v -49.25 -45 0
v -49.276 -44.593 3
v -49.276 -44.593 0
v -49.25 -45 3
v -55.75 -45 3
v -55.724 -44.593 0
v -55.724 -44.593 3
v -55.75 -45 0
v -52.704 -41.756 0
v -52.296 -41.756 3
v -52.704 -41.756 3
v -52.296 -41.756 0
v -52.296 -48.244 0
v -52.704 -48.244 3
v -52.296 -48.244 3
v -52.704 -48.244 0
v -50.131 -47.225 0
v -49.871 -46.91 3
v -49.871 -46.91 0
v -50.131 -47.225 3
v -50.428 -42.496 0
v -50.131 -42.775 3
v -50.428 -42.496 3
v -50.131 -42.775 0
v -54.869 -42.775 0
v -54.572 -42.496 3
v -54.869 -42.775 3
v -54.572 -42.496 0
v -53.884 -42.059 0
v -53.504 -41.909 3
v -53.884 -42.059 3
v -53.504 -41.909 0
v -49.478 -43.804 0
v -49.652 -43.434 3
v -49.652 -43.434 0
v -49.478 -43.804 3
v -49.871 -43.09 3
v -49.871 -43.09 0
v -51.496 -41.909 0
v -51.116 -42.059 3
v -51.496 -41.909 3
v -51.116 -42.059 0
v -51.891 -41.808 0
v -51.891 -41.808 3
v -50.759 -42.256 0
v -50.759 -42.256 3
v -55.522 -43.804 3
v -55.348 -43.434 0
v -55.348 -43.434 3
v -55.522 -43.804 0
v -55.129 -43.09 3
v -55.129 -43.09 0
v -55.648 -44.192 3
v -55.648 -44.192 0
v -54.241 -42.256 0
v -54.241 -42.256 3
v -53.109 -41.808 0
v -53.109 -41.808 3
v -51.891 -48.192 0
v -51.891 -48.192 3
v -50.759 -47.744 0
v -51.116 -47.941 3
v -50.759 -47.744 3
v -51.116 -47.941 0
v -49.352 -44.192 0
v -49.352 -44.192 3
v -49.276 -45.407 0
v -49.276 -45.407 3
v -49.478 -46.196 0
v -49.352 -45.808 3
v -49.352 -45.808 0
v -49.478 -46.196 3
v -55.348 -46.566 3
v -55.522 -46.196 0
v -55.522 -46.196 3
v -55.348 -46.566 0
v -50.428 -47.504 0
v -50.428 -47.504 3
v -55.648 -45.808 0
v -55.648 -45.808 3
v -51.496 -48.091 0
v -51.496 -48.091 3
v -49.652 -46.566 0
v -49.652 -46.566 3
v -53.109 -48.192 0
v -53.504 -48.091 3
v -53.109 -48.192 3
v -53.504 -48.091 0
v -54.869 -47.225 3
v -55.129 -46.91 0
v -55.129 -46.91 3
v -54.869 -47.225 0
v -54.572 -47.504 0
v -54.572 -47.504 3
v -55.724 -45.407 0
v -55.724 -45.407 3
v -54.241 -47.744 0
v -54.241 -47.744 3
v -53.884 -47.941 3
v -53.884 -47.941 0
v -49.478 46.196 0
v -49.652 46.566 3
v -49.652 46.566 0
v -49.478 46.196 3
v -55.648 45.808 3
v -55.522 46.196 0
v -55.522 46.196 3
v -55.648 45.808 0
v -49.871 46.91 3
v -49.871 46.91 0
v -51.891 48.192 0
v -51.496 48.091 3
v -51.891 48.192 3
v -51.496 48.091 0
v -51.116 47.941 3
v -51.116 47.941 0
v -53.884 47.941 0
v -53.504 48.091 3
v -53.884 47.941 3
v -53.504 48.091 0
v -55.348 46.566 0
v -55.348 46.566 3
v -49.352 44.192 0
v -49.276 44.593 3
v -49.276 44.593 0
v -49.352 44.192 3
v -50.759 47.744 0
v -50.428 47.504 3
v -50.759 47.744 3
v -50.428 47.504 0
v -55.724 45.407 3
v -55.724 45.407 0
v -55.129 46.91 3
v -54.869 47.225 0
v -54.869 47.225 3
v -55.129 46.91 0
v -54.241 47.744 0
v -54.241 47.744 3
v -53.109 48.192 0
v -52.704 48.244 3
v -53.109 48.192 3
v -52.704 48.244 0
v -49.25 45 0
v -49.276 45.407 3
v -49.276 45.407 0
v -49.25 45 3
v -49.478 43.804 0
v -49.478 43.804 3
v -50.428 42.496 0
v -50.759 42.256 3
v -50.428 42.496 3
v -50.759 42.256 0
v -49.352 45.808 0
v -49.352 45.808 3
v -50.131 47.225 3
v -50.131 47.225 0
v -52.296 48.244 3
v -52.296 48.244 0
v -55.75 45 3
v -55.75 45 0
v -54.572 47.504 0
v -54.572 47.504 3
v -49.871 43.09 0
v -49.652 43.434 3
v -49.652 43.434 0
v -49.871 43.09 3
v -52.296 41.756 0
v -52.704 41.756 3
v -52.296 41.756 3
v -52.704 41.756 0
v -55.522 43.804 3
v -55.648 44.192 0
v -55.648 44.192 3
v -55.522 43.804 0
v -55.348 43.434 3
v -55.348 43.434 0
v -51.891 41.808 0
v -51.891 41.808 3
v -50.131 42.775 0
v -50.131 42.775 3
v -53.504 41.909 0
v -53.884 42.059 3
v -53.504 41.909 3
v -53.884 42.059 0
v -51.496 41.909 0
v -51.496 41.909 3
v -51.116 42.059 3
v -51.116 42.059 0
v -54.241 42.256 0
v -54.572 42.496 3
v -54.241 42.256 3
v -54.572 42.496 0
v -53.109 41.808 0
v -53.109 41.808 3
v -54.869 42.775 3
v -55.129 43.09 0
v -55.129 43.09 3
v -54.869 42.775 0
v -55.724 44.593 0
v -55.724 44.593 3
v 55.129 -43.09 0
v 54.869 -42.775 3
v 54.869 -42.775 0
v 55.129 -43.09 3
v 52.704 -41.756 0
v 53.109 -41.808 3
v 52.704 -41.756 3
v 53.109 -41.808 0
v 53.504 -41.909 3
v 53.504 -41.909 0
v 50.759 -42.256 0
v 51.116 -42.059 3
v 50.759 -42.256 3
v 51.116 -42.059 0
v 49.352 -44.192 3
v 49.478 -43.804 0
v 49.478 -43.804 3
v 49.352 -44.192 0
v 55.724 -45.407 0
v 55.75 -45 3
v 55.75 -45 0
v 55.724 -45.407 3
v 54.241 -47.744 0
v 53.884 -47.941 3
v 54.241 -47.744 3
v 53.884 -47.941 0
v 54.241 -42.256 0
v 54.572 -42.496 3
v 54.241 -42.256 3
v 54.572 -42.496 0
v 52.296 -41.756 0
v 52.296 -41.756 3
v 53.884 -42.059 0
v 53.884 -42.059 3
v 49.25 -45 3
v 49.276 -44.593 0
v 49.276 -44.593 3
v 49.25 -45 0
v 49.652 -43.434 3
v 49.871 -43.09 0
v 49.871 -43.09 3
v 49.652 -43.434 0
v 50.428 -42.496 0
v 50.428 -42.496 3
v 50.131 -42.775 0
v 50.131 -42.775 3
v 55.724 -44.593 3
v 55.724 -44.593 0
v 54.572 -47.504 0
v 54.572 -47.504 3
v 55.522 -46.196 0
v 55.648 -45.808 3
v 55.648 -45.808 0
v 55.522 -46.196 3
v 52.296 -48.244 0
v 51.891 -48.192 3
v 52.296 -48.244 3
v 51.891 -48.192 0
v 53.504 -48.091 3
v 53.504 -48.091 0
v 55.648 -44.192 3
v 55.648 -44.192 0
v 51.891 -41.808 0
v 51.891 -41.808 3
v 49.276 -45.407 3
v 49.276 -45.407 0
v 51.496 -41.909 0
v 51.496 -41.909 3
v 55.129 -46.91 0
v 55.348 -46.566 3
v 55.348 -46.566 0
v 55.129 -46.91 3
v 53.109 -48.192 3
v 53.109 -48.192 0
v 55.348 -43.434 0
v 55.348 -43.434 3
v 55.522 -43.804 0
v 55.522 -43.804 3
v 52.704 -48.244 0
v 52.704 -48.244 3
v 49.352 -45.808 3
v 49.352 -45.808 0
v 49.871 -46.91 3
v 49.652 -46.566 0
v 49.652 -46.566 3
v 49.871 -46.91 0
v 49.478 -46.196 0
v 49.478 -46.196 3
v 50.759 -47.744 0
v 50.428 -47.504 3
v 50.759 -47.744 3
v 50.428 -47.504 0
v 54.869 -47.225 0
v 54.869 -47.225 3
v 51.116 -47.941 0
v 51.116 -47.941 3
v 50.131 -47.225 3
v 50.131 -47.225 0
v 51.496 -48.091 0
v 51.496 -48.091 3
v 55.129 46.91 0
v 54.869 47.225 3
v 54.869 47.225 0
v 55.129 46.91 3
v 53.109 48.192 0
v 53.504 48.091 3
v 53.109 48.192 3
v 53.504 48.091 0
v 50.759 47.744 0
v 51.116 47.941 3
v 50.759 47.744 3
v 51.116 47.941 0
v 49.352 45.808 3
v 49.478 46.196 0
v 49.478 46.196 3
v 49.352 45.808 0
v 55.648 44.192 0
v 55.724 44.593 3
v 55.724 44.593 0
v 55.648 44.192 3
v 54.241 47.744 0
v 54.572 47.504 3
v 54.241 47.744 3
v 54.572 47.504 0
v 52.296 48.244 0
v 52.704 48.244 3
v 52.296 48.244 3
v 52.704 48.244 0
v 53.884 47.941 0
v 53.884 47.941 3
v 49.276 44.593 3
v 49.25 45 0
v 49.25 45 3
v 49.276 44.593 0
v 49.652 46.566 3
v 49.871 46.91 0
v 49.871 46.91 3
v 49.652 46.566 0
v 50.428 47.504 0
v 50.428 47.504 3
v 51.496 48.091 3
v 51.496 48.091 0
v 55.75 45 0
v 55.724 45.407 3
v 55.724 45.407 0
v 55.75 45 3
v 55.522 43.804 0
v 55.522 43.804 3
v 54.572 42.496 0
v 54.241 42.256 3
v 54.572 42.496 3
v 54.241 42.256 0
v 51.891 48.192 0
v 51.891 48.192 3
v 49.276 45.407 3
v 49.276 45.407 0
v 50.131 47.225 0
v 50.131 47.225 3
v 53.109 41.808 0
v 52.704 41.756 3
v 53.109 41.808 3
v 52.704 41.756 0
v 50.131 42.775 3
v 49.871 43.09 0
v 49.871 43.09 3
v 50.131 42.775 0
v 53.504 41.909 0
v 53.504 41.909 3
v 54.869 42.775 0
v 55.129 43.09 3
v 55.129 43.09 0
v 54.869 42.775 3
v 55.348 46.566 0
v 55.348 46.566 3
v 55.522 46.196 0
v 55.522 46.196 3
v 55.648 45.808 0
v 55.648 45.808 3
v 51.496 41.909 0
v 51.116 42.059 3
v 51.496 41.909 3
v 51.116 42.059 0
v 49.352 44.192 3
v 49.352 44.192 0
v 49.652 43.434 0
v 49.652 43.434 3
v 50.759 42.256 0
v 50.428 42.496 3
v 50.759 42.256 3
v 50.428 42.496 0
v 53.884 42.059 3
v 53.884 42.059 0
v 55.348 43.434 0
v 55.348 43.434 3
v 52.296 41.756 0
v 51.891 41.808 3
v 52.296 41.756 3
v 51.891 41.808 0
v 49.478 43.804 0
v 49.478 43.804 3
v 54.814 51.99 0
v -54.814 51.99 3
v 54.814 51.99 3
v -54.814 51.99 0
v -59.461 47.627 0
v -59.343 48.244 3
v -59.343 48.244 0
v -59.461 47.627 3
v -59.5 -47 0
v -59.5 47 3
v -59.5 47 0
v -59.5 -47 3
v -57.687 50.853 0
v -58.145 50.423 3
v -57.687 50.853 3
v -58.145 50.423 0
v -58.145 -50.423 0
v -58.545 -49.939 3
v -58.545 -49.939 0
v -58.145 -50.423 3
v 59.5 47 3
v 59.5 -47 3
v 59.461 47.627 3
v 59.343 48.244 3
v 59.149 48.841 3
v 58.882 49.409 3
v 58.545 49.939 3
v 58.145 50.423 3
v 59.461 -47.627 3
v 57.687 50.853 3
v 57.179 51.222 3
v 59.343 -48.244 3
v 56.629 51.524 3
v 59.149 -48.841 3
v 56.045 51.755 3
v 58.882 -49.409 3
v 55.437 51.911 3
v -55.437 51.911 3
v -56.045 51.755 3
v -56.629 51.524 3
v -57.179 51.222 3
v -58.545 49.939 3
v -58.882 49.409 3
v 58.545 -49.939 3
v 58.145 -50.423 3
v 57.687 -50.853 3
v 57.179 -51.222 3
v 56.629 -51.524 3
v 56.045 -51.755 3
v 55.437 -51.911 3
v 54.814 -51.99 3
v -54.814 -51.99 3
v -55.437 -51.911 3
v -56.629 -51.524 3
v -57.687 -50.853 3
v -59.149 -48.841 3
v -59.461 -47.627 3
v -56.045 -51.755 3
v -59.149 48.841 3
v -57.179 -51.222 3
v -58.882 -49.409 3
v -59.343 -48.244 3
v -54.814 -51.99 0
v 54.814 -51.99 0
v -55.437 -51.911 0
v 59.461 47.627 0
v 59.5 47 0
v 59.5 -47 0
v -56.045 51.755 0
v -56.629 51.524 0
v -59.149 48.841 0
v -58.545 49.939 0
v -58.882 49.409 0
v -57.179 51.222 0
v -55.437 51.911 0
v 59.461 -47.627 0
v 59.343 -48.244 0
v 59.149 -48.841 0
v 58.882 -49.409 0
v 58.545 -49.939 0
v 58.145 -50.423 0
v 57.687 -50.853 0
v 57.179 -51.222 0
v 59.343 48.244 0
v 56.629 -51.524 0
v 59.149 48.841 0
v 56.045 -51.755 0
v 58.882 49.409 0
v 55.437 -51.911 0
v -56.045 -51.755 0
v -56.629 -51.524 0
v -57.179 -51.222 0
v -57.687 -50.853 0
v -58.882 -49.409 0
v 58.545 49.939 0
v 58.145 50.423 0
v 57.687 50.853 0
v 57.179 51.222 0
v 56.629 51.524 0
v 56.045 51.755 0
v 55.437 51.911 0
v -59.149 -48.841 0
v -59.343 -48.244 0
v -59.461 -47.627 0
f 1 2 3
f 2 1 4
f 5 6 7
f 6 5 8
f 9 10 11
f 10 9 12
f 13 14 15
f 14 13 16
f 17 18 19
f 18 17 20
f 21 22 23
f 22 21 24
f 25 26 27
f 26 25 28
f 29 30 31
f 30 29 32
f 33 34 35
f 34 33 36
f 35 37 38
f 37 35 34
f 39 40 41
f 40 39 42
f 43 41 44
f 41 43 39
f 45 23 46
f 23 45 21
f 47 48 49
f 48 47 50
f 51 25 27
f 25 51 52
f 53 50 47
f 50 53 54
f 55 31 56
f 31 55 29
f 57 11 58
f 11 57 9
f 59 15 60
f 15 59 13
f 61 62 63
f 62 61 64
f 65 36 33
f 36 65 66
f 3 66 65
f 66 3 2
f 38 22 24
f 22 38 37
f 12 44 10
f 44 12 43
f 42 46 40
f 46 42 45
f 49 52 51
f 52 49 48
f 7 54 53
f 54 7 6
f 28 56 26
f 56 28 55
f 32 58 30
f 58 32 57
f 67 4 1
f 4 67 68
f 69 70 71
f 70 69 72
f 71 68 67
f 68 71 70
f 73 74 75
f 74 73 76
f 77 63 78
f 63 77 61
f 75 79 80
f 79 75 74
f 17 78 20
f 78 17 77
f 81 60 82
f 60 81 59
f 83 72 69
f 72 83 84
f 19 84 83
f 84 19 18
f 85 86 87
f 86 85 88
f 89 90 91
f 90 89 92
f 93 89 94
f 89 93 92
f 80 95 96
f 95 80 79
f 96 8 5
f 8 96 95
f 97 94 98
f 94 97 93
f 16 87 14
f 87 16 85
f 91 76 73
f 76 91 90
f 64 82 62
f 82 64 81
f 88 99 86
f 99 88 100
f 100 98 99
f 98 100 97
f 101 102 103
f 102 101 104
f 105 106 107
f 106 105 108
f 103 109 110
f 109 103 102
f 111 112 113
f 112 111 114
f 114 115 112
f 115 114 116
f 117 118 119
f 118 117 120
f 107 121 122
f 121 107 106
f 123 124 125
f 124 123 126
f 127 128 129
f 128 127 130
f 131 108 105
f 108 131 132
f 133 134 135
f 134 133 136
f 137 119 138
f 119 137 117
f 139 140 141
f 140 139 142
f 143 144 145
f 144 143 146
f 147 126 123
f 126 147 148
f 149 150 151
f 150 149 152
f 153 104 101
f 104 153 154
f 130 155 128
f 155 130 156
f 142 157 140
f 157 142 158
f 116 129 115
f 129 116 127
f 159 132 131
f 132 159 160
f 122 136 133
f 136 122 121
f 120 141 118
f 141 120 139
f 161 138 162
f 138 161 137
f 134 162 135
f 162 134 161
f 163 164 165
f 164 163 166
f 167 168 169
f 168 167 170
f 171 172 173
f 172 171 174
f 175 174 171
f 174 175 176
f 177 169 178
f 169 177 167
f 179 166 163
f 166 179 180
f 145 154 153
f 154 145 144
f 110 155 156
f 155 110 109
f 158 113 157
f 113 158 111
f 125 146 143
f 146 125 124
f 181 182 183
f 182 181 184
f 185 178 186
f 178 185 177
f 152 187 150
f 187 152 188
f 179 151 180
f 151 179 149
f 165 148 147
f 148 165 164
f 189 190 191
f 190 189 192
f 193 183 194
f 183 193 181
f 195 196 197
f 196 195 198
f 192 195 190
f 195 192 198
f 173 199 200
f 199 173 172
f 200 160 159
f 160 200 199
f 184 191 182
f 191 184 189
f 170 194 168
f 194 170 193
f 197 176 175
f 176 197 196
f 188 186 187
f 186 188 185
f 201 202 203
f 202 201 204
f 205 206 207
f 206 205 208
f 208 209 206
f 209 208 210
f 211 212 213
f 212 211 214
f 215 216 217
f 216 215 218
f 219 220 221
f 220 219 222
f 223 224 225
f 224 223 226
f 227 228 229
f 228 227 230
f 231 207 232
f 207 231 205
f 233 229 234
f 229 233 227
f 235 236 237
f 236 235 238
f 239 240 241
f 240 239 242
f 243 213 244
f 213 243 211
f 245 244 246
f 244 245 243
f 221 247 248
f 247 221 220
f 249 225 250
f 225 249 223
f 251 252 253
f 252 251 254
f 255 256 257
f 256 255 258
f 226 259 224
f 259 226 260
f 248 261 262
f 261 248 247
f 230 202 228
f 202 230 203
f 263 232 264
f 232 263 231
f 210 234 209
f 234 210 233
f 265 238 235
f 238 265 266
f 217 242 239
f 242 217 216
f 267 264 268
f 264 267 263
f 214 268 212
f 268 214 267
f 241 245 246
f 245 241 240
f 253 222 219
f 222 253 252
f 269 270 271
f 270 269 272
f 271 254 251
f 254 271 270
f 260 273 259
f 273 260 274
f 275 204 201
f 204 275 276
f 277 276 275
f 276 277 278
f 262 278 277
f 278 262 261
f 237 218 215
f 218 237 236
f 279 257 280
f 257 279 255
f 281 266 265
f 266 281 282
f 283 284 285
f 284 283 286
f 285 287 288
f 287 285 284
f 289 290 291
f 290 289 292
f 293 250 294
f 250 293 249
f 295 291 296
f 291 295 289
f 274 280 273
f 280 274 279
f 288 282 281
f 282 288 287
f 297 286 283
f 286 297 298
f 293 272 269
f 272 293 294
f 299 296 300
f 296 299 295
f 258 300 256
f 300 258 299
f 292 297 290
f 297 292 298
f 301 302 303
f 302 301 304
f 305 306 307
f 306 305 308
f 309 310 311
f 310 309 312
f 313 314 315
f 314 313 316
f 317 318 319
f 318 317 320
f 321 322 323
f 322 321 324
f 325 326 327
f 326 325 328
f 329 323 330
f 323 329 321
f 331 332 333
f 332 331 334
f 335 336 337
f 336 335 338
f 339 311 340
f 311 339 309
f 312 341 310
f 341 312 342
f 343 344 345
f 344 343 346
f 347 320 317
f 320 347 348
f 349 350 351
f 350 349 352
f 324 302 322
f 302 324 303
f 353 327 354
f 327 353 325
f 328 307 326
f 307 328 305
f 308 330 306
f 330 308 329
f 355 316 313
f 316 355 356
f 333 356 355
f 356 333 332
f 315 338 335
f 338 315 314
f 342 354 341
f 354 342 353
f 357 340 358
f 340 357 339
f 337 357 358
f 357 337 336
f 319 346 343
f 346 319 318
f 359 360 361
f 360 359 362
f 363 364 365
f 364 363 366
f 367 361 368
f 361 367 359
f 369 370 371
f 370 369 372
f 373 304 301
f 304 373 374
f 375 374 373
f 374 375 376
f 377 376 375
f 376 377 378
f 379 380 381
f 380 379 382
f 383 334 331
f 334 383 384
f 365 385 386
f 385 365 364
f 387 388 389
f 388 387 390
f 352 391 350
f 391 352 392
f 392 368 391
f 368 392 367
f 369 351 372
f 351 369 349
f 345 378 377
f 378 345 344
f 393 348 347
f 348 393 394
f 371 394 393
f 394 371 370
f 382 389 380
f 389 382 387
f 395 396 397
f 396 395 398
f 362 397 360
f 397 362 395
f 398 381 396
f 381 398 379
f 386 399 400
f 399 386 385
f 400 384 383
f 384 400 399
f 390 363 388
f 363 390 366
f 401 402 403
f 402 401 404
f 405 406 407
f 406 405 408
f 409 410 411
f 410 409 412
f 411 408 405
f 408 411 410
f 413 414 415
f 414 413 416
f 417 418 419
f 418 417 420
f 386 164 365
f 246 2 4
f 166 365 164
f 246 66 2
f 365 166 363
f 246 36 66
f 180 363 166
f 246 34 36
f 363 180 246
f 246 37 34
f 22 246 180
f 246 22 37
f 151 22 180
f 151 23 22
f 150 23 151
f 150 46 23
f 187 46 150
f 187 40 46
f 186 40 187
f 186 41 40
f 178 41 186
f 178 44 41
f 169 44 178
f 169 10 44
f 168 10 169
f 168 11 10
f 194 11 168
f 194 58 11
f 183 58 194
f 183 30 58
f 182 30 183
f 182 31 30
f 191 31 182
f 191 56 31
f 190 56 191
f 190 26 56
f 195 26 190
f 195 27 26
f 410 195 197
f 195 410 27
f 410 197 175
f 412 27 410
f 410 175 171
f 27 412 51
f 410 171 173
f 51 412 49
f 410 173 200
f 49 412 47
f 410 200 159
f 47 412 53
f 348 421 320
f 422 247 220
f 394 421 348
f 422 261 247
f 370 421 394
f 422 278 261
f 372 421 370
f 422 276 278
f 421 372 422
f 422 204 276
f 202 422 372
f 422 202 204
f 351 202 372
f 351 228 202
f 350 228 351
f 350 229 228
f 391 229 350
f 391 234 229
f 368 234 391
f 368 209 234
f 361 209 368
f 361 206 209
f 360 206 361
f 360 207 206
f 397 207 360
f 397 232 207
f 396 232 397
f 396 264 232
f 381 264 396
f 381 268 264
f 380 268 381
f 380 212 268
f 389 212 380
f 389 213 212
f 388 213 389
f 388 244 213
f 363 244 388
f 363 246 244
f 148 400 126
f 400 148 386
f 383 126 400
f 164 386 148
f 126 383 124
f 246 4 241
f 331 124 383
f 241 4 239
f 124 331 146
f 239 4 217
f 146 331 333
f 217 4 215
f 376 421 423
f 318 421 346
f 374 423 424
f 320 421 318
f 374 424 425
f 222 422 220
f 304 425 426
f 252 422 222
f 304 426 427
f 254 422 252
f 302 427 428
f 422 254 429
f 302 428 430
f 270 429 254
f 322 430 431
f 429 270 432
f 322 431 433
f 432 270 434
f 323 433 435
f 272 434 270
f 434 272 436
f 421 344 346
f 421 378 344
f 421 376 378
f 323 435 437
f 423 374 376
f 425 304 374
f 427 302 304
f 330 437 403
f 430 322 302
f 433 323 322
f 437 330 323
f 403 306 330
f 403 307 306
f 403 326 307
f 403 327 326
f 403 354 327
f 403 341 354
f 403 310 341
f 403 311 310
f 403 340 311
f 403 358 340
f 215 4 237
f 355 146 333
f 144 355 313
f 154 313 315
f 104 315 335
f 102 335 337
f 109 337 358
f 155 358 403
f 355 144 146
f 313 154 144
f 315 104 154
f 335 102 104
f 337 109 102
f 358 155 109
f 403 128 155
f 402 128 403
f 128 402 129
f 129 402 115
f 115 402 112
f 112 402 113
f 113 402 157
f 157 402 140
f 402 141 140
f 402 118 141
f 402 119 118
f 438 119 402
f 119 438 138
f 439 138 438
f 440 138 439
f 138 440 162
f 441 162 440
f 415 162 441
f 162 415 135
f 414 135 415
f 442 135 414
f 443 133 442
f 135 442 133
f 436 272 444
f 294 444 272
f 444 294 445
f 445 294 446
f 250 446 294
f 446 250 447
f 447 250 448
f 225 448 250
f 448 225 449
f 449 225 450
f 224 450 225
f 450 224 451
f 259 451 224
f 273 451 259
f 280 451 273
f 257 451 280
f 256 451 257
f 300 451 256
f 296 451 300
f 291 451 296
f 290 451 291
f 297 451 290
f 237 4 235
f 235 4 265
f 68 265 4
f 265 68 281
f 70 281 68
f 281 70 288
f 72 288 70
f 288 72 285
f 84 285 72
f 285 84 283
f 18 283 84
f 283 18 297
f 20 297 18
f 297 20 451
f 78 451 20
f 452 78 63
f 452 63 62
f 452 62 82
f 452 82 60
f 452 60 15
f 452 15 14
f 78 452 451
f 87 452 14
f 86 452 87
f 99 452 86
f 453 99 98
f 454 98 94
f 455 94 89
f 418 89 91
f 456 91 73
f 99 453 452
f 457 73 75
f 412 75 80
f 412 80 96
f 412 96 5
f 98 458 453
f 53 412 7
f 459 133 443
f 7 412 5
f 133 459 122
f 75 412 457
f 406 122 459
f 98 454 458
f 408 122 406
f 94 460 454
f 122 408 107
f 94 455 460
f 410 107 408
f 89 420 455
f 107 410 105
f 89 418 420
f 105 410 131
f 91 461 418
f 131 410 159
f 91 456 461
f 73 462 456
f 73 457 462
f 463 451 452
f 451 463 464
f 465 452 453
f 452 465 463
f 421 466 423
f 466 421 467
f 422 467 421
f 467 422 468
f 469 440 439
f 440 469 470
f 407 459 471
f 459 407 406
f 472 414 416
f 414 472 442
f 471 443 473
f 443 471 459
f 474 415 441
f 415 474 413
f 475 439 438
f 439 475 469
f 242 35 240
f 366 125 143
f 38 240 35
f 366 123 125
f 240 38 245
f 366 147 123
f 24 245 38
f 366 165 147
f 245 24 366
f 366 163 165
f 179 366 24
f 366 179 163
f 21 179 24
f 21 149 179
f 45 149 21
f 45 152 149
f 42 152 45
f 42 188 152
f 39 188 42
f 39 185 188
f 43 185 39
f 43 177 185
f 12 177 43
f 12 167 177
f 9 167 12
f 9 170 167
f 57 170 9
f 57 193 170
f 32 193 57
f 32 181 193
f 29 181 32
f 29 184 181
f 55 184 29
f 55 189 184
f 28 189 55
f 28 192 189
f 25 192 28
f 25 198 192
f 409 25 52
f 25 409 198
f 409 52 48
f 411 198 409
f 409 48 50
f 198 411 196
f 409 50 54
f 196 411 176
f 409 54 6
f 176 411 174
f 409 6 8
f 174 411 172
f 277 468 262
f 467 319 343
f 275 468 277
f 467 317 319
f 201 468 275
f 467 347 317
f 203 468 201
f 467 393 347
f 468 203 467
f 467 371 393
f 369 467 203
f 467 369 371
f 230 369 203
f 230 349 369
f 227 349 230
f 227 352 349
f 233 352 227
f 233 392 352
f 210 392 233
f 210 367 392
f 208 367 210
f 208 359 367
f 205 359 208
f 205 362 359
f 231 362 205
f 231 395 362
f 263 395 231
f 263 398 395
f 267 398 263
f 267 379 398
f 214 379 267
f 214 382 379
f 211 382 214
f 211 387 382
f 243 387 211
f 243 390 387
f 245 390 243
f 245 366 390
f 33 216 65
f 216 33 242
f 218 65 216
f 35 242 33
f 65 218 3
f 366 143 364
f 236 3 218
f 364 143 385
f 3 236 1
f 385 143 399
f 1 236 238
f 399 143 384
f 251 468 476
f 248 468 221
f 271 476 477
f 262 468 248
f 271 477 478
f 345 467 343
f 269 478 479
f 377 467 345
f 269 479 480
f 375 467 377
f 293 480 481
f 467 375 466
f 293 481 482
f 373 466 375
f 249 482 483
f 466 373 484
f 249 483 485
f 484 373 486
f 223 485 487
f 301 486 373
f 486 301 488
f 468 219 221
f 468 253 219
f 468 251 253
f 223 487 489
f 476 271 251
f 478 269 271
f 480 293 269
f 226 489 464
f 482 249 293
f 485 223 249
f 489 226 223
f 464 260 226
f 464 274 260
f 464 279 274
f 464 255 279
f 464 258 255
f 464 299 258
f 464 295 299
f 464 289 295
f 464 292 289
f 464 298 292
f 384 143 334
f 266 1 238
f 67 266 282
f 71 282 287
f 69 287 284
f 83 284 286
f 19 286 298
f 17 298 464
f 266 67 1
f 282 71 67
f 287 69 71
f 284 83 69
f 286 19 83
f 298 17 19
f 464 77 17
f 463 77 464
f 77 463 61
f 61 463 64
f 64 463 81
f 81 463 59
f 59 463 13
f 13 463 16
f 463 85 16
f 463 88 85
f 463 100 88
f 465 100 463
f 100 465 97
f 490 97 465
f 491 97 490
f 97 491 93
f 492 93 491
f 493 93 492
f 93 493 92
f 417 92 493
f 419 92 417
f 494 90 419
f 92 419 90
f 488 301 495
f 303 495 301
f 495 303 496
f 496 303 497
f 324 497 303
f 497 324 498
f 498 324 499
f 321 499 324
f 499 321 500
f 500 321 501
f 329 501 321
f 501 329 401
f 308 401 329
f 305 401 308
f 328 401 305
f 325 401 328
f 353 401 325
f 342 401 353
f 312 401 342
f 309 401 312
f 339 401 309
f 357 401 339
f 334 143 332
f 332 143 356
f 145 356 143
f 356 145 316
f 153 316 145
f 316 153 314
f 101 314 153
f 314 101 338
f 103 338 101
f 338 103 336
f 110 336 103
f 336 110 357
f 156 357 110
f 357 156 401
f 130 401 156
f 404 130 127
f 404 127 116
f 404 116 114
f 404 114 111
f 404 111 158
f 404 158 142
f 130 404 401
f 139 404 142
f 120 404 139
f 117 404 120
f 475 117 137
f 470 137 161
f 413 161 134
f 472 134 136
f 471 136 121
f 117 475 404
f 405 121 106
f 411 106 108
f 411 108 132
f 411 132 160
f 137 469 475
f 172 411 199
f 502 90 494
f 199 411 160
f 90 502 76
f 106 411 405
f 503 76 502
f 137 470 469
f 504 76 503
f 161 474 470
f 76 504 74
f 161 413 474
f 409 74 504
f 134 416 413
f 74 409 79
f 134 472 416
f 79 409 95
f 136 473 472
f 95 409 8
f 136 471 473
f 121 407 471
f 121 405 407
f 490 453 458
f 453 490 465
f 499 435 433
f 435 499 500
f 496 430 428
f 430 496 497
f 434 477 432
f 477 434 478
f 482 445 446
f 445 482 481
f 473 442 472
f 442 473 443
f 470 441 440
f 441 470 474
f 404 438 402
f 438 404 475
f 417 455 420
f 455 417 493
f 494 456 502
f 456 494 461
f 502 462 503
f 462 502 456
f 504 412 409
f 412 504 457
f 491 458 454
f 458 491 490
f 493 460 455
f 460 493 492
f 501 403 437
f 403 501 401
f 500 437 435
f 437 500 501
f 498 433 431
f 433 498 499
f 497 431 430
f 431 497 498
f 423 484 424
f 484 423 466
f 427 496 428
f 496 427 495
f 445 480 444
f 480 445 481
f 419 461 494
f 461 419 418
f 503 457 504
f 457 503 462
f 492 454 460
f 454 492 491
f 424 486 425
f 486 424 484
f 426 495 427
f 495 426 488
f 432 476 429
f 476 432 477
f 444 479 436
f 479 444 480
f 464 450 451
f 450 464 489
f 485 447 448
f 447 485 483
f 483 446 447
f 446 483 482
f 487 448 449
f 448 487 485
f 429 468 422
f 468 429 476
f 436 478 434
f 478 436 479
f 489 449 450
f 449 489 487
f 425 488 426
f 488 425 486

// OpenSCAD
$fn = 50;


difference() {
	union() {
		hull() {
			translate(v = [-54.5000000000, 47.0000000000, 0]) {
				cylinder(h = 3, r = 5);
			}
			translate(v = [54.5000000000, 47.0000000000, 0]) {
				cylinder(h = 3, r = 5);
			}
			translate(v = [-54.5000000000, -47.0000000000, 0]) {
				cylinder(h = 3, r = 5);
			}
			translate(v = [54.5000000000, -47.0000000000, 0]) {
				cylinder(h = 3, r = 5);
			}
		}
	}
	union() {
		translate(v = [-52.5000000000, -45.0000000000, -100.0000000000]) {
			cylinder(h = 200, r = 3.2500000000);
		}
		translate(v = [-52.5000000000, 45.0000000000, -100.0000000000]) {
			cylinder(h = 200, r = 3.2500000000);
		}
		translate(v = [52.5000000000, -45.0000000000, -100.0000000000]) {
			cylinder(h = 200, r = 3.2500000000);
		}
		translate(v = [52.5000000000, 45.0000000000, -100.0000000000]) {
			cylinder(h = 200, r = 3.2500000000);
		}
	}
}
